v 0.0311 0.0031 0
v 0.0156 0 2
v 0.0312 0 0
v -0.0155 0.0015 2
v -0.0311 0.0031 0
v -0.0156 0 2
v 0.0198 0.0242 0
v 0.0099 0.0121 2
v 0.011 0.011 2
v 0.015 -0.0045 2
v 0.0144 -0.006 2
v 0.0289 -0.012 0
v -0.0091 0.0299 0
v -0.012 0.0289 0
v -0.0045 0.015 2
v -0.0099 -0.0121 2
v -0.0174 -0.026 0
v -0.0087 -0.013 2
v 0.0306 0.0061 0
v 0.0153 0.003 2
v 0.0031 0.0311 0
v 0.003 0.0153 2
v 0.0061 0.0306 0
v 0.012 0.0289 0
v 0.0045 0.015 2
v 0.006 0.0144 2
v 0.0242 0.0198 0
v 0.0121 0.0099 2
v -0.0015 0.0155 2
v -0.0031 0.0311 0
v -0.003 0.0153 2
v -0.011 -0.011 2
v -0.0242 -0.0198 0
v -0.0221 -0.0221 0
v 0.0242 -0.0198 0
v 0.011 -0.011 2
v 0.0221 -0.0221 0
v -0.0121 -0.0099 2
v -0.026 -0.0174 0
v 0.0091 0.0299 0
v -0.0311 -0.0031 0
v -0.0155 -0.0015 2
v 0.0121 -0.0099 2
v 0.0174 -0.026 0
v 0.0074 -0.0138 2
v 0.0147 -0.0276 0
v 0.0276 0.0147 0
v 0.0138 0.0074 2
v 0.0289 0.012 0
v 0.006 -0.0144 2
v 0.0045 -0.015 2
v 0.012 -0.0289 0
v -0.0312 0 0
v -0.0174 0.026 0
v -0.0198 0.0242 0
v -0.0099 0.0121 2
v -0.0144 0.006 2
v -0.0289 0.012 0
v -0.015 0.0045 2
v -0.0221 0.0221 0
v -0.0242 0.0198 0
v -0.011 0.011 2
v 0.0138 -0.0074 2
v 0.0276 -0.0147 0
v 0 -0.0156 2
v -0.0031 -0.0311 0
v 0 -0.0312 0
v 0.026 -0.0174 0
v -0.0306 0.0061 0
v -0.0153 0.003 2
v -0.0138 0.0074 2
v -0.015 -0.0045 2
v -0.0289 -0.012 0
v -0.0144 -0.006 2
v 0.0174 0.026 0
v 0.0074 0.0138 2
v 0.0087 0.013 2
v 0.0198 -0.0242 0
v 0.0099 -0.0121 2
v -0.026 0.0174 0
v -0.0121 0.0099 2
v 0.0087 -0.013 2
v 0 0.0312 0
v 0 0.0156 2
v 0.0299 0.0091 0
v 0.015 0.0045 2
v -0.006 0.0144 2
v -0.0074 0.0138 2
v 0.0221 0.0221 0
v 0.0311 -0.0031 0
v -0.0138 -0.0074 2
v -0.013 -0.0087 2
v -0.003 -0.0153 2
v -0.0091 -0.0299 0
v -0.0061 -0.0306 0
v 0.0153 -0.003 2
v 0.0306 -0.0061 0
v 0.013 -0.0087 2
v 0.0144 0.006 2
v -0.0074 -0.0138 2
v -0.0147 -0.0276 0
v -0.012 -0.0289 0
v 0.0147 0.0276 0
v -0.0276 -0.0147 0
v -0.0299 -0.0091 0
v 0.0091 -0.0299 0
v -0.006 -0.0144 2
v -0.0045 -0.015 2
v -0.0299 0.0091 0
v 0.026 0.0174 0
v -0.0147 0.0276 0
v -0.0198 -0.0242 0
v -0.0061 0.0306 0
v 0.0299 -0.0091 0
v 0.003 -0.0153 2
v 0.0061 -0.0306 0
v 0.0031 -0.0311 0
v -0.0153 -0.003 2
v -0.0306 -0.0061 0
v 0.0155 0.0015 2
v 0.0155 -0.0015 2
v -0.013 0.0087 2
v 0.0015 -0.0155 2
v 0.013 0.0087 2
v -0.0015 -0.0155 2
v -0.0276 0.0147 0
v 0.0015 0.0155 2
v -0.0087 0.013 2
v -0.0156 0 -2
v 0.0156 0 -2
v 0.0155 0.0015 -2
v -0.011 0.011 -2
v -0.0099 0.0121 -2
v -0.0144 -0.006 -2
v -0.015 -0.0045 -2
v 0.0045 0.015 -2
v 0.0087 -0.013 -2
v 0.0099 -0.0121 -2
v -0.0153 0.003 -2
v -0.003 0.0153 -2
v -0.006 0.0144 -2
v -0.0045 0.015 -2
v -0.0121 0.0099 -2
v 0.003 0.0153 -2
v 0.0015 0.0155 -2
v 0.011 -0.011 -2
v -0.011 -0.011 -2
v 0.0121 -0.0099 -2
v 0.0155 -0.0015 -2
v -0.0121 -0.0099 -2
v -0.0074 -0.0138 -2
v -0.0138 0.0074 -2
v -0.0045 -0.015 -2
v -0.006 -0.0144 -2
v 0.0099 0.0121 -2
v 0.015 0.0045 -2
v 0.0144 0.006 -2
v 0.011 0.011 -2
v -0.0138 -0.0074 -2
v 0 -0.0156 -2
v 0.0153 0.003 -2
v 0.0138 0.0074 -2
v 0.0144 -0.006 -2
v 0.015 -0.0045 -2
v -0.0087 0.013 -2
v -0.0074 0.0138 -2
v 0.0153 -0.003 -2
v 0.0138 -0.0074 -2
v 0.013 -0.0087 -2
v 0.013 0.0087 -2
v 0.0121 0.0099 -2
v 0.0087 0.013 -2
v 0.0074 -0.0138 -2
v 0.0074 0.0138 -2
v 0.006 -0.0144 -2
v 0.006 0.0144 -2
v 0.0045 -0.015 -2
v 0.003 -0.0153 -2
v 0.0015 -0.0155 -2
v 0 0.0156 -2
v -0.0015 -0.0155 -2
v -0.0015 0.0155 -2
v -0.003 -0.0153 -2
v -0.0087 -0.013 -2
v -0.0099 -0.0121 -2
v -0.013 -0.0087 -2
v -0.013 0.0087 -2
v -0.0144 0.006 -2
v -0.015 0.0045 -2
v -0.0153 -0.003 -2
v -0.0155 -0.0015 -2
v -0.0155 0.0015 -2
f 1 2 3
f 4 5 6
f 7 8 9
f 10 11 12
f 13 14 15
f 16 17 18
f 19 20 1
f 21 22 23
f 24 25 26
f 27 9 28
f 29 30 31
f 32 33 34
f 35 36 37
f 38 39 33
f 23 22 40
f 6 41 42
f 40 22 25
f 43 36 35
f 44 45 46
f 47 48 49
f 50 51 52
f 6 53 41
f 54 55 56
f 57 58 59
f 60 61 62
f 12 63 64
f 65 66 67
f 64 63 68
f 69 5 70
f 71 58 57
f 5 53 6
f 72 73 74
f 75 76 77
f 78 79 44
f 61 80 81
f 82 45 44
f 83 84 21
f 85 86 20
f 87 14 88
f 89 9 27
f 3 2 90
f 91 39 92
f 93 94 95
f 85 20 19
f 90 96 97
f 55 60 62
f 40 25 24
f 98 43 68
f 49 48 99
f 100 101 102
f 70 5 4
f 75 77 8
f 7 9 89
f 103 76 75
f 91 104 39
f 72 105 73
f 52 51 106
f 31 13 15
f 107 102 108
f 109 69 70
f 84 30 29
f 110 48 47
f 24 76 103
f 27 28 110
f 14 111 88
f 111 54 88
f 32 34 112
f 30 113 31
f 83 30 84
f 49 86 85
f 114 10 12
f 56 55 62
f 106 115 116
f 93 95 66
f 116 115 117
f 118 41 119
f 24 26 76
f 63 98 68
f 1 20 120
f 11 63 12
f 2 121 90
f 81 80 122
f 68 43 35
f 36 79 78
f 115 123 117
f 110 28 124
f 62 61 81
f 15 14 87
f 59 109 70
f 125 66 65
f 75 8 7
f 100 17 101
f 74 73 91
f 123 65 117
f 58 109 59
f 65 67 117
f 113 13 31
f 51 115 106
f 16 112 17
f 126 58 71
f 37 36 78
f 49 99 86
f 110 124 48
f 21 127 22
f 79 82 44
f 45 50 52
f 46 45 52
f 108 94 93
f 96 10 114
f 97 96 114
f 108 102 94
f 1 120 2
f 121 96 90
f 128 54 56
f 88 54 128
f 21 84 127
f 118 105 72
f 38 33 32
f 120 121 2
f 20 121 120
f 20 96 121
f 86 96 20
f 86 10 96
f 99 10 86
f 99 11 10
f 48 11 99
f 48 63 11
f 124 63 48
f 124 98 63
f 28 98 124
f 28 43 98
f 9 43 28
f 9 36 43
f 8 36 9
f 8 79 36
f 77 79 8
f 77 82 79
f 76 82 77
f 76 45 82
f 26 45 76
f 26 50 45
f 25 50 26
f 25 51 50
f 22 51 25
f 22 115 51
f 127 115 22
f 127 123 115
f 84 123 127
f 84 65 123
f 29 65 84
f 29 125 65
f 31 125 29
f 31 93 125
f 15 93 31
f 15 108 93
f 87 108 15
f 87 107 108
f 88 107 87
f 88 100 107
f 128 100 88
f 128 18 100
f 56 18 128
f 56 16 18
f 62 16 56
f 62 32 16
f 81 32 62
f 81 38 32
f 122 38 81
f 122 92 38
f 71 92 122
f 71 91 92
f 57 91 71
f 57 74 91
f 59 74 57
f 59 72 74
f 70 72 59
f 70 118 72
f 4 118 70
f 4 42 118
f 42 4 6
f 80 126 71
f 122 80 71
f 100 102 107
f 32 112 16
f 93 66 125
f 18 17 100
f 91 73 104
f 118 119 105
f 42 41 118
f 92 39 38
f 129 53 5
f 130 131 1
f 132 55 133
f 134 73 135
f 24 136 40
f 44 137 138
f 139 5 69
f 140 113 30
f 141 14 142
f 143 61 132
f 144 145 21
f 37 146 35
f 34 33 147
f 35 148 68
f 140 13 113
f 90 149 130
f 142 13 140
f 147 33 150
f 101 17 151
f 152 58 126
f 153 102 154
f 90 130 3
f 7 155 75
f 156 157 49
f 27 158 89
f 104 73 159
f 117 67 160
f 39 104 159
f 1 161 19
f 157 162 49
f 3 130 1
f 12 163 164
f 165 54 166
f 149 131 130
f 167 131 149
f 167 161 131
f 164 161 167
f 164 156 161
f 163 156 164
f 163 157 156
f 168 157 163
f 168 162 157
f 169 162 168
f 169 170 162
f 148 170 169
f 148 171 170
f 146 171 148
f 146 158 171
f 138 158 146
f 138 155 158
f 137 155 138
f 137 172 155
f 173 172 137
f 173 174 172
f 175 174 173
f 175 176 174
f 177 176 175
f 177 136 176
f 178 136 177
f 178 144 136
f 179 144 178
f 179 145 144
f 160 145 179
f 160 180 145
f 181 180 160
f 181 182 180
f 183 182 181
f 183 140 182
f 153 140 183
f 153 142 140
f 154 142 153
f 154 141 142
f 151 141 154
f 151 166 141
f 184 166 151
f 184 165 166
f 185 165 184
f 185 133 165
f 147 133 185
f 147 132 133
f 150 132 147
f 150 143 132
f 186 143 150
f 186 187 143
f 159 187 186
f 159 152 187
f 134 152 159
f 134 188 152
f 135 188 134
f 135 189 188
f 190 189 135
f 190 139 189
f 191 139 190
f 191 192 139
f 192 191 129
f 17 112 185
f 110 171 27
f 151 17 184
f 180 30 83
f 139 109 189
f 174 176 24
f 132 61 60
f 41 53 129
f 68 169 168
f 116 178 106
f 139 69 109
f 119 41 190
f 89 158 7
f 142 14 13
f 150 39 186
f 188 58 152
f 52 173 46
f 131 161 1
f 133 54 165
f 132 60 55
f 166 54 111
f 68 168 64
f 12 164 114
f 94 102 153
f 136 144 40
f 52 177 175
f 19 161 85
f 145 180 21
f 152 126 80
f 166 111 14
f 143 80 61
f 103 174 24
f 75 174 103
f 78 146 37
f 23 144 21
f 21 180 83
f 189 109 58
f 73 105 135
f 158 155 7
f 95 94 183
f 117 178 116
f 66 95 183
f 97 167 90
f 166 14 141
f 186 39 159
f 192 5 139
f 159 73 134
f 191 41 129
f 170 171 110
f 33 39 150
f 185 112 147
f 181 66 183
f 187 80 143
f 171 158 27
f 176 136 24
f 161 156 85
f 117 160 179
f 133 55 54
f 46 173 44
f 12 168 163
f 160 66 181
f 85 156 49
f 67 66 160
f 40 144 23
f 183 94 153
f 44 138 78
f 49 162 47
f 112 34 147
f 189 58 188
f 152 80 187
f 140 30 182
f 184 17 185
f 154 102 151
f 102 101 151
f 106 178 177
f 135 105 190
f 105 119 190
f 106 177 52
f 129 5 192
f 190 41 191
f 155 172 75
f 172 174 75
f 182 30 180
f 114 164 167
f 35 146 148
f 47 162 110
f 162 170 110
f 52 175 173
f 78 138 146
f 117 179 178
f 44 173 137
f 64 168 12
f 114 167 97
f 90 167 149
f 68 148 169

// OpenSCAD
// file: ../../constraints.scad
//####################################
// Math-Magik LPP - Design Constraints
// (c) 2021 by Roie R. Black
//====================================

// AMA Rules for event 208
//------------------------------------

max_overall_length = 20;
max_projected_wing_span = 18;
max_bearing_to_rear_hook = 10;
max_wing_chord = 5;
max_stab_span = 12;
max_stab_chord = 4;
max_prop_diameter = 12;
// file: ../colors.scad
// colors.scad
// Credit: David Powell, OpenSCAN Forum



//group ABS_<colorname>
//	discription  common 3d printer ABS filament colors
// actual colours may need some tweaking

ABS_Nature =[0.8,0.8,0.8,0.8];
ABS_White =[0.9,0.9,0.9,1];
ABS_Black =[0.1,0.1,0.1,1];
ABS_Red = [0.7,0,0,1];
ABS_Green = [0,0.7,0,1];
ABS_Blue = [0,0,0.7,1];
ABS_Orange =[0.8,0.4,0,1];
ABS_Purple =[0.7,0,0.7,1];
ABS_Brown =[0.6,0.2,0.2,1];
ABS_Glow_Blue =[0,0,.99,1];
ABS_Flurescence_Green =[0,1,0,1];
ABS_Flurescence_Yellow = [0.9,0.9,0,1];

//group PLA_<colorname>
//	discription  common 3d printer PLA filament colors
// actual colours may need some tweaking

PLA_Nature =[0.8,0.8,0.8,0.8];
PLA_White =[0.9,0.9,0.9,1];
PLA_Black =[0.1,0.1,0.1,1];
PLA_Red = [0.7,0,0,1];
PLA_Green = [0,0.7,0,1];
PLA_Blue = [0,0,0.7,1];
PLA_Orange =[0.8,0.4,0,1];
PLA_Purple =[0.7,0,0.7,1];
PLA_Brown =[0.6,0.2,0.2,1];
PLA_Glow_Blue =[0,0,.99,1];
PLA_Flurescence_Green =[0,1,0,1];
PLA_Flurescence_Yellow = [0.9,0.9,0,1];

//group ANODIZED_<colorname>
//	discription  common aluminium anodized colors
// these don't seem to follow normal color tables as the process
// produces a color change difference to the named color
// dew to base metal
// actual colours may need some tweaking

ANODIZED_Red =[0.7,0,0,1];
ANODIZED_Gold =[0.8,0.8,0.0,1];
ANODIZED_Black =[0.1,0.1,0.1,1];
ANODIZED_Blue =[0,0,0.7,1];
ANODIZED_Green =[0,0.5,0,1];
ANODIZED_Gray =[0.4,0.4,0.4,1];
ANODIZED_Dark_Blue =[0,0.2,0.6,1];
ANODIZED_Lime_Green =[0,0.8,0,1];
ANODIZED_Purple =[0.5,0,0.7,1];		//more blue than purple
ANODIZED_Light_Blue =[0.4,0.4,1,1];
ANODIZED_Pink =[0.7,0,0.7,1];		//more purlpe than pink
ANODIZED_Orange =[0.9,0.5,0,1];
ANODIZED_Scandia_Gold =[0.9,0.6,0.3,1];
ANODIZED_Copper =[0.7,0.5,0,1];		//more brown than copper
ANODIZED_Clear =[0.7,0.7,0.9,1];	//natural aluminium color
ANODIZED_Light_Bronze =[0.4,0.4,0.3,1]; //more silver than bronze
ANODIZED_Gold_Nickel =[0.8,0.8,0.6,1];
ANODIZED_Brush_Nickel =[0.8,0.8,0.7,1];

//group METAL_<typename>
//	discription common metal colors
// colors need tweaking

METAL_Aluminium = [0.7,0.7,0.8,1];
METAL_Brass = [0.88,0.78,0.5,1];
METAL_Copper = [0.9,0.6,0.5,1];
METAL_Steel = [0.9,0.9,0.8,1];
METAL_Stainless = [0.8,0.8,0.7,1];
METAL_Titanium = [0.7,0.7,0.6,1];
METAL_Bronze = [0.9,0.4,0.4,1];
METAL_Gold = [0.9,0.9,0.0,1];
METAL_Silver = [0.8,0.8,0.8,1];
METAL_Iron = [0.6,0.6,0.6,1];

// group WOOD_<typename>
//	discription common wood colors
// probabaly wrong

WOOD_Oak = [0.4,0.2,0.2,1];
WOOD_Birch = [0.8,0.8,0.4,1];
WOOD_Red = [0.7,0.3,0.3,1];
WOOD_pine = [0.8,0.8,0.4,1];
WOOD_Beach = [0.8,0.6,0.3,1];
WOOD_Spruce = [0.8,0.8,0.7,1];
WOOD_Balsa = [0.95,0.86,0.73];

// group GLASS_<color>
//	discription common glass colors
// needs tweaking

GLASS_Clear = [0.8,0.8,0.8,0.2];
GLASS_Red = [0.8,0,0,0.4];
GLASS_Green = [0,0.8,0,.4];
GLASS_Blue = [0,0,0.8,.4];
GLASS_Brown = [0.5,0.3,0.1,.4];

CONCRETE = [210/255, 209/255, 205/255];
// file: ../prop_data.scad
//#####################################
// prop-blade-data.scad
// (c) 2021 by Roie R. Black
//*************************************
include <colors.scad>
include <../constraints.scad>

// Propeller dimensions
prop_radius = max_prop_diameter/2;
prop_pitch_angle = 40;
prop_blade_offset = 0.5;

prop_spar_inner_radius = 1/32;
prop_spar_outer_radius = 1/64;
prop_spar_length = 4;

prop_spar_color = WOOD_Balsa;

// prop blade dimensions
prop_blade_thickness = 1/64;
prop_max_chord = 1.85;

// prop form dimensions
prop_form_radius = 2.5;
prop_form_height = prop_radius + 2;
prop_form_angle = 14;

// elliptic form data
s = prop_radius - 1;
c = 2.5;
f = 2;
s1 = 1;
s2 = s - s1;
s3 = 1;
s4 = 1;

prop_blade_color = WOOD_Balsa;

//-------------------------------------
// calculated by analysis
prop_forward_x = -1.3287;
// main file
//########################################
// spar.scad
// (c) 2021 - Roie R. Black
//****************************************
include <../prop_data.scad>
$fn = 64;


module spar() {
  color(prop_spar_color)
    union() {
      cylinder(
        r1=prop_spar_inner_radius,
        r2=prop_spar_outer_radius,
        h=prop_spar_length/2);
      rotate([0,180,0])
        cylinder(
          r1=prop_spar_inner_radius,
          r2=prop_spar_outer_radius,
          h=prop_spar_length/2);
    }
}

spar();
